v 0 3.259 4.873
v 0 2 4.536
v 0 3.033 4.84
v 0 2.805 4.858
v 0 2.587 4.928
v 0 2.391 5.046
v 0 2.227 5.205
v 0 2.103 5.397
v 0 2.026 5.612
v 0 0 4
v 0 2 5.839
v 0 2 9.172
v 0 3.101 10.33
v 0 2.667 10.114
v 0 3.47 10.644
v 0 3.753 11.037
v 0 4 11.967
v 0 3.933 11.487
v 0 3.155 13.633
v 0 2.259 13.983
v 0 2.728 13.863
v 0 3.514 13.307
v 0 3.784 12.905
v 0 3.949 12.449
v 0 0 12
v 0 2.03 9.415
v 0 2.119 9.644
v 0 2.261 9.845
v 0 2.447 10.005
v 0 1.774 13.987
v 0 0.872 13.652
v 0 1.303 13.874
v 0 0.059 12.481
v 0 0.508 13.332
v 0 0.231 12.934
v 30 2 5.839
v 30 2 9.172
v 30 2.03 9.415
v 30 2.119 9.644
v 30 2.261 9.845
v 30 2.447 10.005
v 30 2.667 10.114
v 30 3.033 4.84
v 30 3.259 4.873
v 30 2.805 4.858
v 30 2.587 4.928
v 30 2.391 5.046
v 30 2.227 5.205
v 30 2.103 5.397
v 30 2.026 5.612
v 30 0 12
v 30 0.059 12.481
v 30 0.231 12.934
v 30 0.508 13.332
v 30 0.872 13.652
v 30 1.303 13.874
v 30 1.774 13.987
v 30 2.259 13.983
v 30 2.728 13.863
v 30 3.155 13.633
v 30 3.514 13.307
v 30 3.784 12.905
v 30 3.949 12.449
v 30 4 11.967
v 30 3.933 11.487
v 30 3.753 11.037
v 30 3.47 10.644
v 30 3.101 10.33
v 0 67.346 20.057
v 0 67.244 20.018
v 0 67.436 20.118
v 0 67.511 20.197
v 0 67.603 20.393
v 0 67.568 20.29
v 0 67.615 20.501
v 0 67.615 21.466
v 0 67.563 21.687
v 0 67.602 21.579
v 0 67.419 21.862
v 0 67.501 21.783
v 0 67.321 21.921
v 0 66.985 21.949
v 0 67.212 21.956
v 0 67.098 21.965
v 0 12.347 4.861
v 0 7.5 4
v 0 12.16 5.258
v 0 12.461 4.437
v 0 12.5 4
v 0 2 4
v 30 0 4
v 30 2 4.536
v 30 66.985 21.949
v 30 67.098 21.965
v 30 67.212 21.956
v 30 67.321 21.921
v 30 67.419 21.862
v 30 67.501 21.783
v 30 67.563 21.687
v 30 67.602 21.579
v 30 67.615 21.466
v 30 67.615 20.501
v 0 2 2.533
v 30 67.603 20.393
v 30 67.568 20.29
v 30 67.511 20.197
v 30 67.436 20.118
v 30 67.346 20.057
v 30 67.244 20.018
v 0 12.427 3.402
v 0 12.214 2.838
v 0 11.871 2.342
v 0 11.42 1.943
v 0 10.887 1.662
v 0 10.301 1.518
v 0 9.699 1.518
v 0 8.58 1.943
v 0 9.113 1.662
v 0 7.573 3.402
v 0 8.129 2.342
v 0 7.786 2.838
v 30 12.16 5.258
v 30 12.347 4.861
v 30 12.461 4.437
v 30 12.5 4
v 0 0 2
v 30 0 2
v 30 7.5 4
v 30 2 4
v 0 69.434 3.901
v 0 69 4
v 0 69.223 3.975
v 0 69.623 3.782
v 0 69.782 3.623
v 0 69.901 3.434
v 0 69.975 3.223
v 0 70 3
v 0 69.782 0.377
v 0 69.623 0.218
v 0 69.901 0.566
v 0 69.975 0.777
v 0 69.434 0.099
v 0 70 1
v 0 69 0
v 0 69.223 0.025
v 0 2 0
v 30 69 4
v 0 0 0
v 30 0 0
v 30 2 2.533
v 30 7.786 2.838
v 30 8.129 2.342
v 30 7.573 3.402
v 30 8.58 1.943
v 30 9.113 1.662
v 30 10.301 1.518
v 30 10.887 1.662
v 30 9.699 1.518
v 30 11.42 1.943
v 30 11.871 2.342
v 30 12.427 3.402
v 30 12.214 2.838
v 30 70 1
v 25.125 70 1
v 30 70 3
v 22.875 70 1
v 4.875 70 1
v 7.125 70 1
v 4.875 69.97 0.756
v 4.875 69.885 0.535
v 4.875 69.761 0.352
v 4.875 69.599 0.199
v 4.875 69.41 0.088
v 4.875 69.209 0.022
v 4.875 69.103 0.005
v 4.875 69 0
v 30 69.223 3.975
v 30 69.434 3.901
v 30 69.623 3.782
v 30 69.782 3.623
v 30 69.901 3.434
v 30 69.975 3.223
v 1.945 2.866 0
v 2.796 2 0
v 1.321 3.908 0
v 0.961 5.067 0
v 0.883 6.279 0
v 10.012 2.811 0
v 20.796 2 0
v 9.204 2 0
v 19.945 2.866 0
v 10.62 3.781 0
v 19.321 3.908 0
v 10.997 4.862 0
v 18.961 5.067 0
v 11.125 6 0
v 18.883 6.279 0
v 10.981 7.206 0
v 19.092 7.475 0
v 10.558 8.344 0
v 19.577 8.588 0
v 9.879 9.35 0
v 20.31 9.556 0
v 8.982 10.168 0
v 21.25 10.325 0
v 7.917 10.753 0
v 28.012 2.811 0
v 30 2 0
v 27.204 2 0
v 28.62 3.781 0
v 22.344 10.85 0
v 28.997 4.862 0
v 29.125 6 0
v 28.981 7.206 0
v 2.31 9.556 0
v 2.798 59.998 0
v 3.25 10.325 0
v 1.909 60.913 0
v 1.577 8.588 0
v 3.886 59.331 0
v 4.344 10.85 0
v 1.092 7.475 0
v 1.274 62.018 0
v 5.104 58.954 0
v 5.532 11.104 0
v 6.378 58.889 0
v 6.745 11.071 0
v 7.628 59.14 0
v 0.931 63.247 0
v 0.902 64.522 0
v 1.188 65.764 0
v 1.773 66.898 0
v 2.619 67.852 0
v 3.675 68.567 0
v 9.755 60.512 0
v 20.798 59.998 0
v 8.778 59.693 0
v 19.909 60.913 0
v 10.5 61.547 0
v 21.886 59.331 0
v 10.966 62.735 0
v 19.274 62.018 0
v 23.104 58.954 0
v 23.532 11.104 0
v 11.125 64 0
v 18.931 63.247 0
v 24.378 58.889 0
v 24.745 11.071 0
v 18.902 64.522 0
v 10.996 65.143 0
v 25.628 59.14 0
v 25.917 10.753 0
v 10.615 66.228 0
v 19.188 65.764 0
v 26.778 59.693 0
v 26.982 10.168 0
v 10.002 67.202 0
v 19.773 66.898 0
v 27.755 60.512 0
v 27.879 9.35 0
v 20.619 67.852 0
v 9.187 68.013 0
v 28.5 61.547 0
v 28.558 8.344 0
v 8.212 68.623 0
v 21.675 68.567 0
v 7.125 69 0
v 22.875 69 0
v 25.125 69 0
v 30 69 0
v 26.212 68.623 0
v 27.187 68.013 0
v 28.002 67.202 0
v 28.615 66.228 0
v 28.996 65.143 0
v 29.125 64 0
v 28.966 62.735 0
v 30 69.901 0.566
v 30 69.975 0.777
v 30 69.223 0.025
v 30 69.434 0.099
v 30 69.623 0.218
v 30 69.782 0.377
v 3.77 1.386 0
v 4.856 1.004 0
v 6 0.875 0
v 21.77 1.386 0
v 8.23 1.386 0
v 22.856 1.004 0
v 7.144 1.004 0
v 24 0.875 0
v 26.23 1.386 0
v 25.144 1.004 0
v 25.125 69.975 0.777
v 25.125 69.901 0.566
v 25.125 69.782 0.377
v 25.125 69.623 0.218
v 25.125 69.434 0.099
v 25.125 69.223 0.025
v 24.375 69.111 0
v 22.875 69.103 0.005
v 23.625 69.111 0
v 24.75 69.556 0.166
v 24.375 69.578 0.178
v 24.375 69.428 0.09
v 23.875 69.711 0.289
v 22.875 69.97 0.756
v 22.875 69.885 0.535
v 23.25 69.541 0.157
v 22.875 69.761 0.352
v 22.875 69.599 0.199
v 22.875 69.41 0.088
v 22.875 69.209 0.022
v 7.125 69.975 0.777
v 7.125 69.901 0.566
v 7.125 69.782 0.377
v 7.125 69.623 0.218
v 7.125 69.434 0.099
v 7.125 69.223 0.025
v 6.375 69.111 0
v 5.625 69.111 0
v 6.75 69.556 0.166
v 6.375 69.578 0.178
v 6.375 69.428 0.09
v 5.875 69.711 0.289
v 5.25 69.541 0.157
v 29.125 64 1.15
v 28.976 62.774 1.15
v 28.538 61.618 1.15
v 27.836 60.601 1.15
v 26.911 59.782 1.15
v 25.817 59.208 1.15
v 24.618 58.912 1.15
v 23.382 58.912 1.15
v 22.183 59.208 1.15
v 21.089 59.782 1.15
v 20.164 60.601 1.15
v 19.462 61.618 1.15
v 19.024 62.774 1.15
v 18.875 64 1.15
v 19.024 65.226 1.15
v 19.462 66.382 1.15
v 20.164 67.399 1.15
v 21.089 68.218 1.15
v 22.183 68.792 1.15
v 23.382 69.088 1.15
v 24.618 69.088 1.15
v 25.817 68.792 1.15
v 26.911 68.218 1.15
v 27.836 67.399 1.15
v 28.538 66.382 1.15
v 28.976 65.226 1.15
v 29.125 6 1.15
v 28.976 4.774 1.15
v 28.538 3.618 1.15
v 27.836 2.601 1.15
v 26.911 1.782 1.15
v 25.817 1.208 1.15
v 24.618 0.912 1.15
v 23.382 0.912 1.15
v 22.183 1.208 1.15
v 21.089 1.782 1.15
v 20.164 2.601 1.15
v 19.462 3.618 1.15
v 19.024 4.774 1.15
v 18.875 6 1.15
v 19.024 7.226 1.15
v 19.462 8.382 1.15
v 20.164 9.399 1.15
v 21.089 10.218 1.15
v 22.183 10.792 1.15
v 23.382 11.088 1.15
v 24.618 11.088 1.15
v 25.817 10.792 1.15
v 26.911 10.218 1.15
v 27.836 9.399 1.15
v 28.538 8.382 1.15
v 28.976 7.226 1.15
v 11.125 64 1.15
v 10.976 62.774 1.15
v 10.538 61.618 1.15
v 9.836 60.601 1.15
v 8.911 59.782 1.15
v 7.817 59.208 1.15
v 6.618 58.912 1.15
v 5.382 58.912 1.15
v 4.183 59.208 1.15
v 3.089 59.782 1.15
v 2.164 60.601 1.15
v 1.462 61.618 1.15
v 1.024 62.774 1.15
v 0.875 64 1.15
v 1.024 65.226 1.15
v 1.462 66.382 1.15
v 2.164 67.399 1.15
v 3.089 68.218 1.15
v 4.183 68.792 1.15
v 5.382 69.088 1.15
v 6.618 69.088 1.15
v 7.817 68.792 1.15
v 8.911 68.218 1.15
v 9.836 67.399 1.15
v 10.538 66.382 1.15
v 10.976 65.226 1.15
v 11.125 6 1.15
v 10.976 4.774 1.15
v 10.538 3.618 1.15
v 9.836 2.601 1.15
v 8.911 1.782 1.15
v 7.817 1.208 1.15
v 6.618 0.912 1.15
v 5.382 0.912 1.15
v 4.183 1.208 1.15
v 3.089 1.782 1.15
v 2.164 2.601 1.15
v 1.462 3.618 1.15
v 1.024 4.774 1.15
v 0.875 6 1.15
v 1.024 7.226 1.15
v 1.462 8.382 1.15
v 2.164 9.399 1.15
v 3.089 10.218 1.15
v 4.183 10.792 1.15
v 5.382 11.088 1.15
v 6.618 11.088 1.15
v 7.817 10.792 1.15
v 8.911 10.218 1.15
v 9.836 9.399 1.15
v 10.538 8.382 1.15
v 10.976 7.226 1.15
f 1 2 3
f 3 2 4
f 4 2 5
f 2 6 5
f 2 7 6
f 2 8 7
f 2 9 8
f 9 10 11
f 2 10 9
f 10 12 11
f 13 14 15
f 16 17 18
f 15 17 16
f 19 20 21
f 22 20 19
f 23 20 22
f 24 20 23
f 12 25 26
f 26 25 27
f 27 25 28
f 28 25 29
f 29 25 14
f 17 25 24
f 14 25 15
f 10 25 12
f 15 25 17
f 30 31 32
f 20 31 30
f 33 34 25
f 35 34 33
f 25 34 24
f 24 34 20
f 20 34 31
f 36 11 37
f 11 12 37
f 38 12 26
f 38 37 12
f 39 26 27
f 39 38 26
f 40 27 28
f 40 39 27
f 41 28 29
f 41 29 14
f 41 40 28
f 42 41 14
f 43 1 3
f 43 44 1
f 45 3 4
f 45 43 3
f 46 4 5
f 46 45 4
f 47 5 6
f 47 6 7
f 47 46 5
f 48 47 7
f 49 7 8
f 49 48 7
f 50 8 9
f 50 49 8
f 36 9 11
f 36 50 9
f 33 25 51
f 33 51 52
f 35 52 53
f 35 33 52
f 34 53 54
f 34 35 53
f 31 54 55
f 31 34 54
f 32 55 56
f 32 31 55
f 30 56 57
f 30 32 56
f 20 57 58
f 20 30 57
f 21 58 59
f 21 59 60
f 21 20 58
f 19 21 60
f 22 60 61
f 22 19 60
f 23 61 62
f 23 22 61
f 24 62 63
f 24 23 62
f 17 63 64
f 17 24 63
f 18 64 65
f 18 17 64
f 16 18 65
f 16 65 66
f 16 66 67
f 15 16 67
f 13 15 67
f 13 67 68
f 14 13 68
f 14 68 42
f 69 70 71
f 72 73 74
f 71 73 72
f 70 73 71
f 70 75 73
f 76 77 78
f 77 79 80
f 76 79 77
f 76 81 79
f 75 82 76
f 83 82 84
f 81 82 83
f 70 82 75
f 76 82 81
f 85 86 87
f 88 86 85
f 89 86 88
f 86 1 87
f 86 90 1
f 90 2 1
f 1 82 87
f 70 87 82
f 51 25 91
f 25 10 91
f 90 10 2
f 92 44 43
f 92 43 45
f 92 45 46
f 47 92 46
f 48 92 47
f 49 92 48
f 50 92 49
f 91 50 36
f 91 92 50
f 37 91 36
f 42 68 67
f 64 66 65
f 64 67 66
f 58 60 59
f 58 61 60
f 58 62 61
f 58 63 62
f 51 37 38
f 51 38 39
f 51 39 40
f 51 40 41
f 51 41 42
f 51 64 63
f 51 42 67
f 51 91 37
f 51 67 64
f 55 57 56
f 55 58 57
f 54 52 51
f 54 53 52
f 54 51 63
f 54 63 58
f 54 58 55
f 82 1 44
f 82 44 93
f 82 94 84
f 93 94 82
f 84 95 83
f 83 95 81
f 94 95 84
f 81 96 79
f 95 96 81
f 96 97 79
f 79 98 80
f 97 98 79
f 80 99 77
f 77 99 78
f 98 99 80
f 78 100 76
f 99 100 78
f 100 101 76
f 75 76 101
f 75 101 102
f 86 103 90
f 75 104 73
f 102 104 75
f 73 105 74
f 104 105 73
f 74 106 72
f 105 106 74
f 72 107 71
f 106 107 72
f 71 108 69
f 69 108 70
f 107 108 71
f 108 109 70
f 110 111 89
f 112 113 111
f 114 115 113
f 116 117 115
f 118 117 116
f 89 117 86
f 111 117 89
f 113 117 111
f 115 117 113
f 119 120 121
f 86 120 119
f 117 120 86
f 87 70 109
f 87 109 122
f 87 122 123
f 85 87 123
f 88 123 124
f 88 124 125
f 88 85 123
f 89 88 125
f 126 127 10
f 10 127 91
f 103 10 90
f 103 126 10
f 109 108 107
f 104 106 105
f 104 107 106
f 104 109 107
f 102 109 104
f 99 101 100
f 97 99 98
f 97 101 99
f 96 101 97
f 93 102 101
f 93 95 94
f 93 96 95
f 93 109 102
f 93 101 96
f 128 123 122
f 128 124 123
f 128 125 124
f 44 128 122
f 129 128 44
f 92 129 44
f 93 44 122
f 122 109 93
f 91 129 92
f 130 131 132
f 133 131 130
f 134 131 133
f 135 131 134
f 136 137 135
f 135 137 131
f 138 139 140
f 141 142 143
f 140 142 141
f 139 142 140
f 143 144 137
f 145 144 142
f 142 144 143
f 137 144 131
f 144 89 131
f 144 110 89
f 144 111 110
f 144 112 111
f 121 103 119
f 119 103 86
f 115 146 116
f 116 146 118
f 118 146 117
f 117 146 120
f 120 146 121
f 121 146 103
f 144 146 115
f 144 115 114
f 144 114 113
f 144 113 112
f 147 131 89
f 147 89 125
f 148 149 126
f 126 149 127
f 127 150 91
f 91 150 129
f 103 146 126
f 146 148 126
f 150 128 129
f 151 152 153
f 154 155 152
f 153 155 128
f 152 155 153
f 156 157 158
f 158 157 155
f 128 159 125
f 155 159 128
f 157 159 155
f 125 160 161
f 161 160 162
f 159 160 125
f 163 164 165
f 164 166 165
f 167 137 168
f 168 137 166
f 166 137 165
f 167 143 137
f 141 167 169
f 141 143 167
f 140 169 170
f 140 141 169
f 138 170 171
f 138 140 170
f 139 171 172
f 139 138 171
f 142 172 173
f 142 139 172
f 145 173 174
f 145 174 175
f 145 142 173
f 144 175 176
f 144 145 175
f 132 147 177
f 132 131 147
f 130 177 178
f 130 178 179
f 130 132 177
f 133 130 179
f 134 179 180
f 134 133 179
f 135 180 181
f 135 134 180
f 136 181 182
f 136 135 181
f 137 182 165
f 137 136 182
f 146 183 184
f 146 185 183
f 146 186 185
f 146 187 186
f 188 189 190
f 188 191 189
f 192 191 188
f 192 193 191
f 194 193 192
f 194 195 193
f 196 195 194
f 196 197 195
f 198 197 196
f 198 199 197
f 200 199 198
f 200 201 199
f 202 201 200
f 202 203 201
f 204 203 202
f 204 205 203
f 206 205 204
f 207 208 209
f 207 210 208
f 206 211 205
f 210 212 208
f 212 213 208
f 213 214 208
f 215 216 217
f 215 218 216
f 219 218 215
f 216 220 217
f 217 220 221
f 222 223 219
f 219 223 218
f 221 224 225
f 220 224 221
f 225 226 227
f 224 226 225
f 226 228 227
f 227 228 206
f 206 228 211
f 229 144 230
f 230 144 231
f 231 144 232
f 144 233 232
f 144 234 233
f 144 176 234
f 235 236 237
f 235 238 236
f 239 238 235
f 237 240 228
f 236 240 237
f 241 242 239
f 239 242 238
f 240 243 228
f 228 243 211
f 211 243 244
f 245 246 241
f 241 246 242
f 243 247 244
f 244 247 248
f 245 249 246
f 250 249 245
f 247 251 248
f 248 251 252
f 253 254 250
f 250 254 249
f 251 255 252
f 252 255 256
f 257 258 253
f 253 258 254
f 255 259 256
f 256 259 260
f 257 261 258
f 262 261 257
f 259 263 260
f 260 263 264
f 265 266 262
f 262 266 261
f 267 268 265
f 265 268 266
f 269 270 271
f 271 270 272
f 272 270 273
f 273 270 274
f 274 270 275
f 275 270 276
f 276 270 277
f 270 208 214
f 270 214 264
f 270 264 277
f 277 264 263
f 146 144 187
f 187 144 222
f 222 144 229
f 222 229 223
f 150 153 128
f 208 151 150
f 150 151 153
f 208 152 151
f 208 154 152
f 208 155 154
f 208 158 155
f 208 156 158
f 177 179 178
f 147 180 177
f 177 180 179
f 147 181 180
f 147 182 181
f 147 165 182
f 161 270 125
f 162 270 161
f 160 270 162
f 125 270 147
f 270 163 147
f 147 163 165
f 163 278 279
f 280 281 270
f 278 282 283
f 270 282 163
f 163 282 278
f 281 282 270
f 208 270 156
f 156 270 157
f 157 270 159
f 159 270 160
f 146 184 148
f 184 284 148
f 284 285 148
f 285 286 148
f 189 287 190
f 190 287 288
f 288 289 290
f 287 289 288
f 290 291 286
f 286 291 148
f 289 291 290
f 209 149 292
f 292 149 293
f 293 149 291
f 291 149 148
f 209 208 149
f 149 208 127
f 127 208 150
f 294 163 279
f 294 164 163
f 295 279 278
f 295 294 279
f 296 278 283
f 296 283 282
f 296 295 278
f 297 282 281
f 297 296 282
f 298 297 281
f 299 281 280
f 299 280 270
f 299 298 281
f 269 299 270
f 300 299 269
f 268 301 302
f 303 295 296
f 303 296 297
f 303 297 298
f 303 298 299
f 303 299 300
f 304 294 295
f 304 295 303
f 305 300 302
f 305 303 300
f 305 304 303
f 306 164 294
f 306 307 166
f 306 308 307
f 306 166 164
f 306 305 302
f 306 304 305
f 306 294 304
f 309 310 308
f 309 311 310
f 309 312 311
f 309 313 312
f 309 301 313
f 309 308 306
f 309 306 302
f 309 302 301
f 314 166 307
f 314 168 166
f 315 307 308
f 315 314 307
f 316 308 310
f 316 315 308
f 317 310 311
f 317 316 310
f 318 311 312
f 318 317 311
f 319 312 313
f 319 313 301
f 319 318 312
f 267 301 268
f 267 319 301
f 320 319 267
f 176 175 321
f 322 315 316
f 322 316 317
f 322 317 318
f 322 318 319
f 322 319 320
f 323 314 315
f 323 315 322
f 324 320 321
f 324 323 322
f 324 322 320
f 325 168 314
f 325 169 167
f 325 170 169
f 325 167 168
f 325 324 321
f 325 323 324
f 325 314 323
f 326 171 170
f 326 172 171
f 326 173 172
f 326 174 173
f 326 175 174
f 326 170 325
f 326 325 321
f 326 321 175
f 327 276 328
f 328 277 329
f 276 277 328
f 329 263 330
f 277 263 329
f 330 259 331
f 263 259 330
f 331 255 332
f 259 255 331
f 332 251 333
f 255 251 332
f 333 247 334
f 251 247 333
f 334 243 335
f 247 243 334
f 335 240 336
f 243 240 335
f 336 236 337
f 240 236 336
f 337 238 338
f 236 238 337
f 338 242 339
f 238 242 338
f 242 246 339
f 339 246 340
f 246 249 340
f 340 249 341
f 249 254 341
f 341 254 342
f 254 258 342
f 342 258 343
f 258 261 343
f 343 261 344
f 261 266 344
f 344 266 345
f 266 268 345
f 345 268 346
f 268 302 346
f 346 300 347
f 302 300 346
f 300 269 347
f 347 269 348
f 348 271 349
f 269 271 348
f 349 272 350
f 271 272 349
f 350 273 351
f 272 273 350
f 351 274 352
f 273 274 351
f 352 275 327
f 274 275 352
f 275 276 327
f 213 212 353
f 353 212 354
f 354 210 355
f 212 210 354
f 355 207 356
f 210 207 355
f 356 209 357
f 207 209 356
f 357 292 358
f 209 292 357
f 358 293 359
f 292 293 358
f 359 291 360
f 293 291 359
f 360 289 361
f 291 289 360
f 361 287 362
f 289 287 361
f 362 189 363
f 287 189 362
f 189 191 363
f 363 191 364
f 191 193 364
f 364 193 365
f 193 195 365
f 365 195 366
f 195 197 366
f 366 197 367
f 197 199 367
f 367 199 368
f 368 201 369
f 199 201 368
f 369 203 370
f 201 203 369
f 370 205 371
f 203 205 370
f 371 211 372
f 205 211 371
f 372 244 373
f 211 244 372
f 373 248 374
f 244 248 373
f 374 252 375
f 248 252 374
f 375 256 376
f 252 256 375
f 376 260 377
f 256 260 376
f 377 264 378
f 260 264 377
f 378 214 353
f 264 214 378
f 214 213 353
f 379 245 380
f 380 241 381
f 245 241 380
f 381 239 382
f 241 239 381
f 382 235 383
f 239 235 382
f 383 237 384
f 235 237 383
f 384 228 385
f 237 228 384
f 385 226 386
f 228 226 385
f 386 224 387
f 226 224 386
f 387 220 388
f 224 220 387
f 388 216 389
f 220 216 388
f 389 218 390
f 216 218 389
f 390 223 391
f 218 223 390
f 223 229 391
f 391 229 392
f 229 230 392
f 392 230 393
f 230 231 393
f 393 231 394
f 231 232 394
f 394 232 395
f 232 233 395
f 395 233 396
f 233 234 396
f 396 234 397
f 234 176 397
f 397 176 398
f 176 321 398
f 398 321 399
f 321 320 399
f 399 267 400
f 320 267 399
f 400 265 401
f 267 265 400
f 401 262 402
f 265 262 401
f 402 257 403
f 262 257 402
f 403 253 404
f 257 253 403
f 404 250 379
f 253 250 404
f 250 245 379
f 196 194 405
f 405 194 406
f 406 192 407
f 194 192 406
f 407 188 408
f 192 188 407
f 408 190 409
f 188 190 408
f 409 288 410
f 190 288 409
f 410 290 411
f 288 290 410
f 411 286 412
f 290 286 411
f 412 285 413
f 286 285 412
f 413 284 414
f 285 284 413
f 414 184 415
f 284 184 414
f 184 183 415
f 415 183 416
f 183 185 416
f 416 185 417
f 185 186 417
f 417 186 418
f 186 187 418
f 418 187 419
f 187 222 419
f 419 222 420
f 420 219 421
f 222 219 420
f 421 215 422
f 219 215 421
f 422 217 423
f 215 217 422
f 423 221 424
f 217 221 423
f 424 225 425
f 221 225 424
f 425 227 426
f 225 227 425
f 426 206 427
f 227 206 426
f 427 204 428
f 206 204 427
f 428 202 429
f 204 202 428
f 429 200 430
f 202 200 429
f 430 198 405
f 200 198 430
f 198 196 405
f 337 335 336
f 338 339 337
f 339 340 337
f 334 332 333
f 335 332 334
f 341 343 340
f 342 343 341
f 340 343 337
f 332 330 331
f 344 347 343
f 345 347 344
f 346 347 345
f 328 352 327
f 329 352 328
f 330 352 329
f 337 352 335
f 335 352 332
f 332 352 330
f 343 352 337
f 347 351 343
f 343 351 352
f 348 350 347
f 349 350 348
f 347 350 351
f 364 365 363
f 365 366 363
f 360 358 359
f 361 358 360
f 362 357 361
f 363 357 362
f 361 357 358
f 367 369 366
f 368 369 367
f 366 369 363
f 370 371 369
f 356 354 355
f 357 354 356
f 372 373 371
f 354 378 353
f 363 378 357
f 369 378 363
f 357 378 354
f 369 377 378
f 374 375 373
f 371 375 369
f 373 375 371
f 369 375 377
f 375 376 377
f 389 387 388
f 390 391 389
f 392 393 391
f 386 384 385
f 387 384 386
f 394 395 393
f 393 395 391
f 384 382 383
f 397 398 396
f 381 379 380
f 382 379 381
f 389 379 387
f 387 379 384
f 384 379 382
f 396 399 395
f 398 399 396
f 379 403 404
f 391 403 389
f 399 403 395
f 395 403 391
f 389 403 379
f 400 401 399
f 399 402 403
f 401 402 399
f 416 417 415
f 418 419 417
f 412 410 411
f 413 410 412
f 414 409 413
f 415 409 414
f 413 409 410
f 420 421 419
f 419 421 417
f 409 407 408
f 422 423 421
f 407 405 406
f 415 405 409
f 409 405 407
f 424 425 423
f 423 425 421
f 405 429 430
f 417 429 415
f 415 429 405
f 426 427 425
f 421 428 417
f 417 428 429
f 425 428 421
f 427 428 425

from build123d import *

# Parameters (mm, degrees)
SKETCH_W     = 30
SKETCH_H     = 70
PAD_DEPTH    = 4
PAD001_DEPTH = 30
PAD002_DEPTH = 30
SKETCH003_R  = 5.125
POCKET_DEPTH = 1.15
FILLET_R     = 0.5
FILLET001_R  = 0.5
FILLET002_R  = 1
FILLET003_R  = 1
FILLET004_R  = 1
FILLET005_R  = 1


with BuildPart() as part:
    # Sketch → Pad (new body)
    with BuildSketch(Plane.XY):
        with Locations((15, 35)):
            Rectangle(SKETCH_W, SKETCH_H)
    extrude(amount=PAD_DEPTH)

    # Sketch001 (on Face4 of Pad) → Pad001 (join)
    with BuildSketch(Plane(origin=(0, 0, 0), x_dir=(0, -1, 0), z_dir=(-1, 0, 0))):
        with BuildLine():
            Line((0, 4), (-67.614808, 22.117333))
            Line((-67.614808, 22.117333), (-67.614808, 20.117333))
            Line((-67.614808, 20.117333), (-12.160236, 5.258325))
            ThreePointArc((-12.160236, 5.258325), (-10.651694, 1.586435), (-7.5, 4))
            Line((-7.5, 4), (0, 2))
            Line((0, 2), (0, 4))
        make_face()
    extrude(amount=-PAD001_DEPTH)

    # Sketch002 (on Face5 of Pad001) → Pad002 (join)
    with BuildSketch(Plane(origin=(0, 0, 0), x_dir=(0, -1, 0), z_dir=(-1, 0, 0))):
        with BuildLine():
            Line((0, 0), (-2, 0))
            Line((-2, 0), (-2, 10))
            ThreePointArc((0, 12), (-3.414214, 13.414214), (-2, 10))
            Line((0, 12), (0, 0))
        make_face()
    extrude(amount=-PAD002_DEPTH)

    # Sketch003 (on Face6 of Pad002) → Pocket (cut)
    with BuildSketch(Plane(origin=(0, 0, 0), x_dir=(1, 0, 0), z_dir=(0, 0, -1))):
        with Locations((6, -6)):
            Circle(SKETCH003_R)
        with Locations((24, -6)):
            Circle(SKETCH003_R)
        with Locations((6, -64)):
            Circle(SKETCH003_R)
        with Locations((24, -64)):
            Circle(SKETCH003_R)
    extrude(amount=-POCKET_DEPTH, mode=Mode.SUBTRACT)

    # Fillet
    fillet_edges = [part.edges().sort_by_distance(p)[0] for p in [
        (15, 67.614808, 22.117333),
    ]]
    fillet(fillet_edges, radius=FILLET_R)

    # Fillet001
    fillet001_edges = [part.edges().sort_by_distance(p)[0] for p in [
        (15, 67.614808, 20.117333),
    ]]
    fillet(fillet001_edges, radius=FILLET001_R)

    # Fillet002
    fillet002_edges = [part.edges().sort_by_distance(p)[0] for p in [
        (15, 70, 4),
    ]]
    fillet(fillet002_edges, radius=FILLET002_R)

    # Fillet003
    fillet003_edges = [part.edges().sort_by_distance(p)[0] for p in [
        (15, 70, 0),
    ]]
    fillet(fillet003_edges, radius=FILLET003_R)

    # Fillet004
    fillet004_edges = [part.edges().sort_by_distance(p)[0] for p in [
        (15, 2, 4.535898),
    ]]
    fillet(fillet004_edges, radius=FILLET004_R)

    # Fillet005
    fillet005_edges = [part.edges().sort_by_distance(p)[0] for p in [
        (15, 2, 10),
    ]]
    fillet(fillet005_edges, radius=FILLET005_R)


solid = part.part
